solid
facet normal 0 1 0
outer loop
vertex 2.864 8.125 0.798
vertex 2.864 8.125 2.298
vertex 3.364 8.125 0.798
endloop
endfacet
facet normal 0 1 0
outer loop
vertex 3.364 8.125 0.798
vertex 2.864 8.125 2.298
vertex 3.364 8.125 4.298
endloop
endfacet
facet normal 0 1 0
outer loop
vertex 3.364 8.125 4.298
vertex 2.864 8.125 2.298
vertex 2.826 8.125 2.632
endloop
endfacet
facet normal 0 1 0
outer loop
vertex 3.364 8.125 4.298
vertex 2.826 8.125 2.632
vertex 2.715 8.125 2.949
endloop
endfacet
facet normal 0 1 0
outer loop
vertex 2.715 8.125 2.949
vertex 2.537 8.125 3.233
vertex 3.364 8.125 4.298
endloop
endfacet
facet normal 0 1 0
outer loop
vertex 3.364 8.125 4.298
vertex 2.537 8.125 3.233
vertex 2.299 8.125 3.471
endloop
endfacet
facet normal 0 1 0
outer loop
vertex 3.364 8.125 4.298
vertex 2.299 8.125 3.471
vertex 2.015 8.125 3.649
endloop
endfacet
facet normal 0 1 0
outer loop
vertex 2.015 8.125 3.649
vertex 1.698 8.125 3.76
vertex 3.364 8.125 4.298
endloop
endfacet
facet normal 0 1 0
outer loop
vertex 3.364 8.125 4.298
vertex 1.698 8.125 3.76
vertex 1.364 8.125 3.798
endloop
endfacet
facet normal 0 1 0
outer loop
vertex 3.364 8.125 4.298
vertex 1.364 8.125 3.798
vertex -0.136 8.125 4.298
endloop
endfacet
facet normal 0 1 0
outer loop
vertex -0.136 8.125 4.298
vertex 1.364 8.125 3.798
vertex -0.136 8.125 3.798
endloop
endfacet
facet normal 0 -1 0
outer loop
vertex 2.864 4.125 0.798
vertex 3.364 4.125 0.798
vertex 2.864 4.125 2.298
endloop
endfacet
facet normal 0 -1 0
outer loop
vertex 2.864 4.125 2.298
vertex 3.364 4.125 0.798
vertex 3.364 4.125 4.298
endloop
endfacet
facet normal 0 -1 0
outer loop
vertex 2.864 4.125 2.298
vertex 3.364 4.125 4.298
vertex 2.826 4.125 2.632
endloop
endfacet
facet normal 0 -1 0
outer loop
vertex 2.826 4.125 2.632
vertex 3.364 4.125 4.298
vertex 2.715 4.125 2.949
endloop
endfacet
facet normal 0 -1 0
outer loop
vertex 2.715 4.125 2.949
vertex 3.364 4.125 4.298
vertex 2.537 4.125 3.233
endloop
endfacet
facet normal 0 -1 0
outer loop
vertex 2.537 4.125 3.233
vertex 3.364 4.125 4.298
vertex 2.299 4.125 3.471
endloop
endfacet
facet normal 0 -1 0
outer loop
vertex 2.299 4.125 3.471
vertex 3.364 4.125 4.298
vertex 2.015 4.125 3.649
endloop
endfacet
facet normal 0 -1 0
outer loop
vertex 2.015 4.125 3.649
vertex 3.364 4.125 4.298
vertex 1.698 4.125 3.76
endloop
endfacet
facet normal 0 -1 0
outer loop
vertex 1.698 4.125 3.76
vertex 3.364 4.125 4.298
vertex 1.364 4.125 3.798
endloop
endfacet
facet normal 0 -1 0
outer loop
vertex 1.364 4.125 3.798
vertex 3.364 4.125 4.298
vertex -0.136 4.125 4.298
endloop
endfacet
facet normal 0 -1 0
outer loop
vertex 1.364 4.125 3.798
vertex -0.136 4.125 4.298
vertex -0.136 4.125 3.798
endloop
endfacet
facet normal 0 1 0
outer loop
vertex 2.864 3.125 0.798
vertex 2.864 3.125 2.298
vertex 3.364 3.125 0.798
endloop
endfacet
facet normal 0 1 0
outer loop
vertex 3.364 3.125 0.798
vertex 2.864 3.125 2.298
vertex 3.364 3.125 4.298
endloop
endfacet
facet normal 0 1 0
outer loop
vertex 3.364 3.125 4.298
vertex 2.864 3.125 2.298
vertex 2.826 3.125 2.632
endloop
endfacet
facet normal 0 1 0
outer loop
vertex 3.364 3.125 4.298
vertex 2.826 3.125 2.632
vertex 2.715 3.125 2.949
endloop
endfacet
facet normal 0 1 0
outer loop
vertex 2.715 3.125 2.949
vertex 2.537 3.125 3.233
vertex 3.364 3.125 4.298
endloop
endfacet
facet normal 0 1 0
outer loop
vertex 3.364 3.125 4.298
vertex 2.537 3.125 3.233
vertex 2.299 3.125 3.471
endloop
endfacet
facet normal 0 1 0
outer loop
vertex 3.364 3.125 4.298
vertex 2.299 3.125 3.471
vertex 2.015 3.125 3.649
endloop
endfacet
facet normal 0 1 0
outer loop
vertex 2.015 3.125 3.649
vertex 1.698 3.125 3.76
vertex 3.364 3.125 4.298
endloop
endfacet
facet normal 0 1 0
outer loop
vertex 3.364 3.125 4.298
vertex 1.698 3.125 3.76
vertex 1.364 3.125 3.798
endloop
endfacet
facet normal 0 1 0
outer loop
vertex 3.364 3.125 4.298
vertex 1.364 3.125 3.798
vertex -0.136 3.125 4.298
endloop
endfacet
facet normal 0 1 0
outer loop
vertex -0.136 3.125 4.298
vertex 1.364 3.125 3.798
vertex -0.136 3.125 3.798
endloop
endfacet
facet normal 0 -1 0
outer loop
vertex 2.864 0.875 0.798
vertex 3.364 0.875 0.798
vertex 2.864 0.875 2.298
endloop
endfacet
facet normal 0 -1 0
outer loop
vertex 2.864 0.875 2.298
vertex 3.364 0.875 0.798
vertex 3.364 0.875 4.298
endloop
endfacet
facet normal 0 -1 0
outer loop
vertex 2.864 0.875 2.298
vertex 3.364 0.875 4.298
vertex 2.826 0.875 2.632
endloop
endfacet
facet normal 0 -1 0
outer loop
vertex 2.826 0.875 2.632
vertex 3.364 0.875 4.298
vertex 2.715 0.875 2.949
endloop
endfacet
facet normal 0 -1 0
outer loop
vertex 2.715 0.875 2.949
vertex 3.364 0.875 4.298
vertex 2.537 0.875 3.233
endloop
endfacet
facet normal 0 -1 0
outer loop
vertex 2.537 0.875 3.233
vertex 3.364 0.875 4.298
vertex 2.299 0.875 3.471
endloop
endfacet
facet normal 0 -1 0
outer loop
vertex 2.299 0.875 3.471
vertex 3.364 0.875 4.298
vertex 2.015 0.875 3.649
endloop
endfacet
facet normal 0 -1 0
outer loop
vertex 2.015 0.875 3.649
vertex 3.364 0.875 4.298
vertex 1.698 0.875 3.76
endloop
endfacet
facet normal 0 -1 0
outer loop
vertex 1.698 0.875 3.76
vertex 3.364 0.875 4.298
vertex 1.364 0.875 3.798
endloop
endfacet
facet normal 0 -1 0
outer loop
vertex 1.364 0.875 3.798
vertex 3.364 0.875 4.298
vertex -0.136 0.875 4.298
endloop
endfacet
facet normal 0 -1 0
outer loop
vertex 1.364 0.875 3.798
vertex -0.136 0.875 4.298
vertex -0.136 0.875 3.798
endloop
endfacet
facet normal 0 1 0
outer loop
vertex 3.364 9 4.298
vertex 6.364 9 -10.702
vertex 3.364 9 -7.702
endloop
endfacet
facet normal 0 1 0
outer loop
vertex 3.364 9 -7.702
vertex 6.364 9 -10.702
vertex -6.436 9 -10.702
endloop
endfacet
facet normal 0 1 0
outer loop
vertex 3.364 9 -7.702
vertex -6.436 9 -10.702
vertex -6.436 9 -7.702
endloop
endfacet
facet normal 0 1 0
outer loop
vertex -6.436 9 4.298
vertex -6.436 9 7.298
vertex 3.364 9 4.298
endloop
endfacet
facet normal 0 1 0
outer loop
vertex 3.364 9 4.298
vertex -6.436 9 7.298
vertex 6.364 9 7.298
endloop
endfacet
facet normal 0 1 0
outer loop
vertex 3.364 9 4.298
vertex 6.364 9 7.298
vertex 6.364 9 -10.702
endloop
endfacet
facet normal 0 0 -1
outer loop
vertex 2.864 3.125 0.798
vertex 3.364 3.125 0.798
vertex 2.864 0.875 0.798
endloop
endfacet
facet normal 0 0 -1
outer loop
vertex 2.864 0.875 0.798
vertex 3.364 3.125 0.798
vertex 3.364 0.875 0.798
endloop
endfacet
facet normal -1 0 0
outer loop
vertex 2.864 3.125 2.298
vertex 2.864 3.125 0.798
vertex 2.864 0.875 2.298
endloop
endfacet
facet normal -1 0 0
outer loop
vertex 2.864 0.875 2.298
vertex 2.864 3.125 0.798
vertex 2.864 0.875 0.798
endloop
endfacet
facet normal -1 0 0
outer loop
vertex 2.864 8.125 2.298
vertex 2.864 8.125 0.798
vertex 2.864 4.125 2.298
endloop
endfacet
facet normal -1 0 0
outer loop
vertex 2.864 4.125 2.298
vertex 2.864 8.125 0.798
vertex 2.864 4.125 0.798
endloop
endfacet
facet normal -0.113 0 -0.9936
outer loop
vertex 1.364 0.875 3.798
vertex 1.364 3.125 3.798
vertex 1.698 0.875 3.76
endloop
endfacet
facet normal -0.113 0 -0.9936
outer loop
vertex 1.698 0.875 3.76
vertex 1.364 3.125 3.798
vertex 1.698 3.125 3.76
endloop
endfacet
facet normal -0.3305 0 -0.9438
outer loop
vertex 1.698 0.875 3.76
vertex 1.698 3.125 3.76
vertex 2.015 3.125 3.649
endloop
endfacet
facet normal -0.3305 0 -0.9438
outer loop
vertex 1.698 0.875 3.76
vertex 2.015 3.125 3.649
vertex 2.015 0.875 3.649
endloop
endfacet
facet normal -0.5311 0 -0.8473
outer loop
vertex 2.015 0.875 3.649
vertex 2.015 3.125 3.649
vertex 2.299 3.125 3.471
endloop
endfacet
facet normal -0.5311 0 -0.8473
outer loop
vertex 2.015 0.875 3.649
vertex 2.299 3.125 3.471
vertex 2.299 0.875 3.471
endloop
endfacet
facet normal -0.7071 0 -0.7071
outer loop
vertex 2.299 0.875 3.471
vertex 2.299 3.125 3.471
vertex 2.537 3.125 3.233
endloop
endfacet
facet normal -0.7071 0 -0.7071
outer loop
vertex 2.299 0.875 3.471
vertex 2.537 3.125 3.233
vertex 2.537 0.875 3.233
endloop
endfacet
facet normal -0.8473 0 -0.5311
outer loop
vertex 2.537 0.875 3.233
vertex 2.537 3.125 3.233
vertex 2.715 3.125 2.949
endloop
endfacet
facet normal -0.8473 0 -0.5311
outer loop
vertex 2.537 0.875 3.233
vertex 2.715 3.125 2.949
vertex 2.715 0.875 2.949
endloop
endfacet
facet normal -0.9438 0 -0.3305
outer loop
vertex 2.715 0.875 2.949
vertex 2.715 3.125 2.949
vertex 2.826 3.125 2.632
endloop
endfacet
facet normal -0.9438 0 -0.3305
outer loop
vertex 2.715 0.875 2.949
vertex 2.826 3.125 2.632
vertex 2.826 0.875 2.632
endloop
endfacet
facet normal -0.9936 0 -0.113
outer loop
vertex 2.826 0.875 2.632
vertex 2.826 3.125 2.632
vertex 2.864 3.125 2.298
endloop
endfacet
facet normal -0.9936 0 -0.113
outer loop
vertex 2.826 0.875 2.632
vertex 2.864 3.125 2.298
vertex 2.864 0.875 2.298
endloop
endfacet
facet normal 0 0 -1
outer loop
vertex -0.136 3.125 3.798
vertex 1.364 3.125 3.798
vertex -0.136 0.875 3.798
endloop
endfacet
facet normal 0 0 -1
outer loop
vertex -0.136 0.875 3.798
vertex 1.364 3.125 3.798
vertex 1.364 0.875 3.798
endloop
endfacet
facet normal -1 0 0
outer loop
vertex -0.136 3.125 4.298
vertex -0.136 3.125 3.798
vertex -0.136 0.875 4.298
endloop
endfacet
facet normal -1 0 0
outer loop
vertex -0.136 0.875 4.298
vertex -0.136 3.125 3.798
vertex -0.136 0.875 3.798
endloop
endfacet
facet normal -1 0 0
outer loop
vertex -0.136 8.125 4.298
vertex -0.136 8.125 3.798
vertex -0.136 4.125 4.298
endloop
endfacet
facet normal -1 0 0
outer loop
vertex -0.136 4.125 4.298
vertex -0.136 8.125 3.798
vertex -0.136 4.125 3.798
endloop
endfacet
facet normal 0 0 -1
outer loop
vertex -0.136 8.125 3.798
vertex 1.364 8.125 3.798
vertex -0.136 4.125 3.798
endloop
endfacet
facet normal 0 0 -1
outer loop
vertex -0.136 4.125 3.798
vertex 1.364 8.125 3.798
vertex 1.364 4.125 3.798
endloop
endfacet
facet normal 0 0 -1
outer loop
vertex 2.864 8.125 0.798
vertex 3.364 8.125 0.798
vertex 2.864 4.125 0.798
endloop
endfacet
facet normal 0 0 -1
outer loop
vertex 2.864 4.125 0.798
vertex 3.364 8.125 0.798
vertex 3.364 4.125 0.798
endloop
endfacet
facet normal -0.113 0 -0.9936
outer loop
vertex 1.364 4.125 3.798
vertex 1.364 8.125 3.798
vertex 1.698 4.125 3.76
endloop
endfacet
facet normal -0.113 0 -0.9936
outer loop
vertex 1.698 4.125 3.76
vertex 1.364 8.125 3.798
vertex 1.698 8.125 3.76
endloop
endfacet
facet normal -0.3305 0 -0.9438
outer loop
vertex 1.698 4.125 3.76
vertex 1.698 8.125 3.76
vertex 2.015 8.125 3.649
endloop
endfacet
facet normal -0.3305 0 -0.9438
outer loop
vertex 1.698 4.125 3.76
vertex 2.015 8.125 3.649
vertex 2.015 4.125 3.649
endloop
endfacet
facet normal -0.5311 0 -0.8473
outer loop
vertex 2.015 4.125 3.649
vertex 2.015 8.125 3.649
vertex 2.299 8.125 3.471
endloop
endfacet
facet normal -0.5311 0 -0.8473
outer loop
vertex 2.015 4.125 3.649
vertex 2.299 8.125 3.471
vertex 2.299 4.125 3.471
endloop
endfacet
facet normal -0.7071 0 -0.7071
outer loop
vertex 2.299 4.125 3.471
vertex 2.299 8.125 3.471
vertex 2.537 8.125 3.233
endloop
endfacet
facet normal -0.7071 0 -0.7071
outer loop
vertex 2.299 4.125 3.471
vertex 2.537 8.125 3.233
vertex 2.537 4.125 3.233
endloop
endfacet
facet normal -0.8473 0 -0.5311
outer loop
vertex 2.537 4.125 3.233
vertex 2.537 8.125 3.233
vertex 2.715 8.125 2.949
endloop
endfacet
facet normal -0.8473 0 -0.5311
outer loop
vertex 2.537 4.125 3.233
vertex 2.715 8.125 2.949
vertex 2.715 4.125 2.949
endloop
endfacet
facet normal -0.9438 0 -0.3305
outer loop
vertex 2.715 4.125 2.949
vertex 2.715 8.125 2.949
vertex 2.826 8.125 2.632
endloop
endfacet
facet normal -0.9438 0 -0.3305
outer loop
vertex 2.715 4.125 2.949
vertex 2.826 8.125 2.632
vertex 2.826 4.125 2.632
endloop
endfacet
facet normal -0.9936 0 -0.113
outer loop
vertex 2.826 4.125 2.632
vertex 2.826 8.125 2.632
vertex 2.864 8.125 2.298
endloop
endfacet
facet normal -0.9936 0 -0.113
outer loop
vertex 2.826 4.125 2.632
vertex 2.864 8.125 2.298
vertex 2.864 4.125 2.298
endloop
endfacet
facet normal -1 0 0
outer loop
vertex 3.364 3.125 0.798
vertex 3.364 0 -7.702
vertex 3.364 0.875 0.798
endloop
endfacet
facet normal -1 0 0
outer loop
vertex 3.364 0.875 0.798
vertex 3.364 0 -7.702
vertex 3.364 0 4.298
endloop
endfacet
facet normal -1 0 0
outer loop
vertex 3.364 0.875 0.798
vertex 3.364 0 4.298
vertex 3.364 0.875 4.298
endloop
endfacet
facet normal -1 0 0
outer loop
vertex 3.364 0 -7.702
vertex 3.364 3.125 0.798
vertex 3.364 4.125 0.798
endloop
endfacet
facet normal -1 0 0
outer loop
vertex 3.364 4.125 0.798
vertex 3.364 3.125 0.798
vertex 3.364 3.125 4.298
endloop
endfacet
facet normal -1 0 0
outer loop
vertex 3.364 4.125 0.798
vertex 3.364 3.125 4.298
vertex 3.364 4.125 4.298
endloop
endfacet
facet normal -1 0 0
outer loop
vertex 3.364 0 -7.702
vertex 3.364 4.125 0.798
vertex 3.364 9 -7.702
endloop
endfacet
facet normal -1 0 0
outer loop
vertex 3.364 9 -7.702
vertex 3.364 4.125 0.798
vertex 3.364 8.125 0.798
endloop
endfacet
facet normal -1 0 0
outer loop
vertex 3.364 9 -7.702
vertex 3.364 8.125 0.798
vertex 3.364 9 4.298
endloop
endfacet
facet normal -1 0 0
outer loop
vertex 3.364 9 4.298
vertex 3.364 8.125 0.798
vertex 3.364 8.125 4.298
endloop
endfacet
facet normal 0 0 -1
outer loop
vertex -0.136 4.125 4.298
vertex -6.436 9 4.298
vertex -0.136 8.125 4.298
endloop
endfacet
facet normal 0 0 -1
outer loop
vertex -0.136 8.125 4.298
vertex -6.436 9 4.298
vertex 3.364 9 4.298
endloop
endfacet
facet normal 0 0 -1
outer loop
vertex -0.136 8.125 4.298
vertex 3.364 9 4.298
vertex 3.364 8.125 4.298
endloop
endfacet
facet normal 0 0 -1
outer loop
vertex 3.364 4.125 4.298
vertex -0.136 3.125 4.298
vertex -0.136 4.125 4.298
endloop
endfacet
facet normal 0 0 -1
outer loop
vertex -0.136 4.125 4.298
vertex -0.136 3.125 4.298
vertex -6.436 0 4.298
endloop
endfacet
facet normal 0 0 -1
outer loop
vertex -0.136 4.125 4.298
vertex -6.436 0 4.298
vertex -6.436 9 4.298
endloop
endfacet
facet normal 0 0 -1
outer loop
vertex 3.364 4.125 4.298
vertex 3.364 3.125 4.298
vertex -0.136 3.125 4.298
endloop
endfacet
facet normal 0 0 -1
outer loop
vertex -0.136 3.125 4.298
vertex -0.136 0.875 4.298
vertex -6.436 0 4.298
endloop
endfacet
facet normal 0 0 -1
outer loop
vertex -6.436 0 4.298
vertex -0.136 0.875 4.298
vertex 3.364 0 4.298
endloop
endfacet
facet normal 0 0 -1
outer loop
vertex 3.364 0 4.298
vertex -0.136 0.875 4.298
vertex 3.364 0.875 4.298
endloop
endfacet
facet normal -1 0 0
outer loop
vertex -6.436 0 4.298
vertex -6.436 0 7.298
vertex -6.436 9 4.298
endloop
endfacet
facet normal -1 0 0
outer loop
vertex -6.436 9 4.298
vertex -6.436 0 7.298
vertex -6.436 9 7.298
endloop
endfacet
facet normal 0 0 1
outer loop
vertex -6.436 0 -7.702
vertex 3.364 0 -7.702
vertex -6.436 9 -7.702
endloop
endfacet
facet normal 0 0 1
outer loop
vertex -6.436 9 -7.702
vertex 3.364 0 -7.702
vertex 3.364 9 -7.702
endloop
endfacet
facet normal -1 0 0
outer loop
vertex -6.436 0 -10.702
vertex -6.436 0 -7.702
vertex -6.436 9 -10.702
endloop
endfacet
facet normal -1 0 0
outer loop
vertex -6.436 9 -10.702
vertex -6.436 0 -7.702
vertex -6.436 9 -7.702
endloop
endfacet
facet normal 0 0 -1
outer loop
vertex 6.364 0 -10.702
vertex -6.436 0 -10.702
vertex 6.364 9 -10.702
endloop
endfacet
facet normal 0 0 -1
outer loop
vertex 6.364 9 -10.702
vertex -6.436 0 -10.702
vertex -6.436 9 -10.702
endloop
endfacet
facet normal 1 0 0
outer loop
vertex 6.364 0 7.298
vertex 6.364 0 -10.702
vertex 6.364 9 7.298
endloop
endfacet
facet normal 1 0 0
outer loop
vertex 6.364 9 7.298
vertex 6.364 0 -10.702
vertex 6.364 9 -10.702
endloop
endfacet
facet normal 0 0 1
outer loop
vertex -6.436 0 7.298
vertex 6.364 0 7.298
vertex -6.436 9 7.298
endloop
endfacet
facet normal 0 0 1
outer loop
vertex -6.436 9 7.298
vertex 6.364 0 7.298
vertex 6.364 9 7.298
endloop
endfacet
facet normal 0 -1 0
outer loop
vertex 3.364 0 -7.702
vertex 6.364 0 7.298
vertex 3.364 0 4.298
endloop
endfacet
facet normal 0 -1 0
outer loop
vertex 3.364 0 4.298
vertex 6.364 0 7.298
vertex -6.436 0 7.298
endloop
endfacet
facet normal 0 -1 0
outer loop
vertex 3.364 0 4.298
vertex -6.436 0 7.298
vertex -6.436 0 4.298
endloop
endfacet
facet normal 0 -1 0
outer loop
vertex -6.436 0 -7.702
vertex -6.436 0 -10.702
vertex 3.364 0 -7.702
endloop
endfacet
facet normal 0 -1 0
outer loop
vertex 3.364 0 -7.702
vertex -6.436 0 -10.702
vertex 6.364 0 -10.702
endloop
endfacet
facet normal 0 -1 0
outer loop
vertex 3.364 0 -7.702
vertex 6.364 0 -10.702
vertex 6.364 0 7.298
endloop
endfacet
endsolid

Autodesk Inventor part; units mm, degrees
ref_plane "YZ Plane" through (0, 0, 0) normal (1, 0, 0) x (0, 1, 0)
ref_plane "XZ Plane" through (0, 0, 0) normal (0, 1, 0) x (-1, 0, 0)
ref_plane "XY Plane" through (0, 0, 0) normal (0, 0, 1) x (1, 0, 0)
sketch "Sketch1" plane through (0, 0, 0) normal (0, 1, 0) x (-1, 0, 0)
  line L0 (-3.364, -7.7022) -> (6.436, -7.7022)
  line L1 (6.436, -7.7022) -> (6.436, 4.2978)
  line L2 (6.436, 4.2978) -> (-3.364, 4.2978)
  line L3 (-3.364, 4.2978) -> (-3.364, -7.7022)
  line L4 (-3.364, -7.7022) -> (6.436, 4.2978) construction
  line L5 (6.436, -7.7022) -> (-3.364, 4.2978) construction
  line L6 (6.436, 4.2978) -> (6.436, 7.2978)
  line L7 (6.436, 7.2978) -> (-6.364, 7.2978)
  line L8 (-6.364, 7.2978) -> (-6.364, -10.7022)
  line L9 (-6.364, -10.7022) -> (6.436, -10.7022)
  line L10 (6.436, -10.7022) -> (6.436, -7.7022)
  point P0 (1.536, -1.7022)
  dimension "d27" = 12
  dimension "d28" = 9.8
  dimension "d29" = 3
  dimension "d30" = 3
extrude "Extrusion1" add sketch "Sketch1" along normal blind 9 contours L0 L10 L9 L8 L7 L6 L2 L3
sketch "Sketch2" plane through (0, 9, 0) normal (0, 1, 0) x (1, 0, 0)
  line L0 (3.364, -0.7978) -> (2.864, -0.7978)
  line L1 (2.864, -0.7978) -> (2.864, -2.2978)
  line L2 (-0.136, -4.2978) -> (-0.136, -3.7978)
  line L3 (-0.136, -4.2978) -> (0.364, -4.2978) construction
  line L4 (-0.136, -3.7978) -> (1.364, -3.7978)
  arc A0 (1.364, -3.7978) -> (2.864, -2.2978) centre (1.364, -2.2978) ccw
  line L5 (-0.136, -4.2978) -> (3.364, -4.2978)
  line L6 (3.364, -4.2978) -> (3.364, -0.7978)
  line L7 (3.364, 7.7022) -> (3.364, -4.2978) projected
  line L8 (3.364, -4.2978) -> (-6.436, -4.2978) projected
  point P0 (0, 0)
  point P1 (5, 6)
  point P2 (5, -6.1)
  dimension "d8" = 0.5
  dimension "d9" = 0.5
  dimension "d10" = 90
  dimension "d13" = 1.5
  dimension "d31" = 3.5
  dimension "d32" = 3.5
extrude "Extrusion2" add sketch "Sketch2" against normal up to surface (9 mm away)
sketch "Sketch3" plane through (-0.136, 9, 3.7978) normal (-1, 0, 0) x (0, 0, 1)
  line L0 (0.5, 0) -> (3.5, 0) projected
  line L1 (0.5, 0) -> (-3, 0)
  line L2 (-3, 0) -> (-3, -0.875)
  line L3 (-3, -0.875) -> (0.5, -0.875)
  line L4 (0.5, -0.875) -> (0.5, 0)
  line L5 (-3, 0) -> (-3, -9) projected
  line L6 (0.5, 0) -> (0.5, -9) projected
  line L7 (-3, -9) -> (-3, 0) projected
  line L8 (0.5, -9) -> (-3, -9)
  line L9 (-3, -9) -> (-3, -8.125)
  line L10 (-3, -8.125) -> (0.5, -8.125)
  line L11 (0.5, -8.125) -> (0.5, -9)
  line L12 (0.5, -5.875) -> (-3, -5.875)
  line L13 (-3, -5.875) -> (-3, -4.875)
  line L14 (-3, -4.875) -> (0.5, -4.875)
  line L15 (0.5, -4.875) -> (0.5, -5.875)
  point P0 (0.5, -8.125)
  point P1 (0.5, -4.875)
  dimension "d33" = 0.875
  dimension "d34" = 0.875
  dimension "d35" = 4
  dimension "d36" = 1
extrude "Extrusion3" cut sketch "Sketch3" against normal up to surface (3.5 mm away) contours L4 L3 L2 L1 | L6 L12 L5 L14 | L6 L8 L5 L10
properties part number "MotorMountTest"
